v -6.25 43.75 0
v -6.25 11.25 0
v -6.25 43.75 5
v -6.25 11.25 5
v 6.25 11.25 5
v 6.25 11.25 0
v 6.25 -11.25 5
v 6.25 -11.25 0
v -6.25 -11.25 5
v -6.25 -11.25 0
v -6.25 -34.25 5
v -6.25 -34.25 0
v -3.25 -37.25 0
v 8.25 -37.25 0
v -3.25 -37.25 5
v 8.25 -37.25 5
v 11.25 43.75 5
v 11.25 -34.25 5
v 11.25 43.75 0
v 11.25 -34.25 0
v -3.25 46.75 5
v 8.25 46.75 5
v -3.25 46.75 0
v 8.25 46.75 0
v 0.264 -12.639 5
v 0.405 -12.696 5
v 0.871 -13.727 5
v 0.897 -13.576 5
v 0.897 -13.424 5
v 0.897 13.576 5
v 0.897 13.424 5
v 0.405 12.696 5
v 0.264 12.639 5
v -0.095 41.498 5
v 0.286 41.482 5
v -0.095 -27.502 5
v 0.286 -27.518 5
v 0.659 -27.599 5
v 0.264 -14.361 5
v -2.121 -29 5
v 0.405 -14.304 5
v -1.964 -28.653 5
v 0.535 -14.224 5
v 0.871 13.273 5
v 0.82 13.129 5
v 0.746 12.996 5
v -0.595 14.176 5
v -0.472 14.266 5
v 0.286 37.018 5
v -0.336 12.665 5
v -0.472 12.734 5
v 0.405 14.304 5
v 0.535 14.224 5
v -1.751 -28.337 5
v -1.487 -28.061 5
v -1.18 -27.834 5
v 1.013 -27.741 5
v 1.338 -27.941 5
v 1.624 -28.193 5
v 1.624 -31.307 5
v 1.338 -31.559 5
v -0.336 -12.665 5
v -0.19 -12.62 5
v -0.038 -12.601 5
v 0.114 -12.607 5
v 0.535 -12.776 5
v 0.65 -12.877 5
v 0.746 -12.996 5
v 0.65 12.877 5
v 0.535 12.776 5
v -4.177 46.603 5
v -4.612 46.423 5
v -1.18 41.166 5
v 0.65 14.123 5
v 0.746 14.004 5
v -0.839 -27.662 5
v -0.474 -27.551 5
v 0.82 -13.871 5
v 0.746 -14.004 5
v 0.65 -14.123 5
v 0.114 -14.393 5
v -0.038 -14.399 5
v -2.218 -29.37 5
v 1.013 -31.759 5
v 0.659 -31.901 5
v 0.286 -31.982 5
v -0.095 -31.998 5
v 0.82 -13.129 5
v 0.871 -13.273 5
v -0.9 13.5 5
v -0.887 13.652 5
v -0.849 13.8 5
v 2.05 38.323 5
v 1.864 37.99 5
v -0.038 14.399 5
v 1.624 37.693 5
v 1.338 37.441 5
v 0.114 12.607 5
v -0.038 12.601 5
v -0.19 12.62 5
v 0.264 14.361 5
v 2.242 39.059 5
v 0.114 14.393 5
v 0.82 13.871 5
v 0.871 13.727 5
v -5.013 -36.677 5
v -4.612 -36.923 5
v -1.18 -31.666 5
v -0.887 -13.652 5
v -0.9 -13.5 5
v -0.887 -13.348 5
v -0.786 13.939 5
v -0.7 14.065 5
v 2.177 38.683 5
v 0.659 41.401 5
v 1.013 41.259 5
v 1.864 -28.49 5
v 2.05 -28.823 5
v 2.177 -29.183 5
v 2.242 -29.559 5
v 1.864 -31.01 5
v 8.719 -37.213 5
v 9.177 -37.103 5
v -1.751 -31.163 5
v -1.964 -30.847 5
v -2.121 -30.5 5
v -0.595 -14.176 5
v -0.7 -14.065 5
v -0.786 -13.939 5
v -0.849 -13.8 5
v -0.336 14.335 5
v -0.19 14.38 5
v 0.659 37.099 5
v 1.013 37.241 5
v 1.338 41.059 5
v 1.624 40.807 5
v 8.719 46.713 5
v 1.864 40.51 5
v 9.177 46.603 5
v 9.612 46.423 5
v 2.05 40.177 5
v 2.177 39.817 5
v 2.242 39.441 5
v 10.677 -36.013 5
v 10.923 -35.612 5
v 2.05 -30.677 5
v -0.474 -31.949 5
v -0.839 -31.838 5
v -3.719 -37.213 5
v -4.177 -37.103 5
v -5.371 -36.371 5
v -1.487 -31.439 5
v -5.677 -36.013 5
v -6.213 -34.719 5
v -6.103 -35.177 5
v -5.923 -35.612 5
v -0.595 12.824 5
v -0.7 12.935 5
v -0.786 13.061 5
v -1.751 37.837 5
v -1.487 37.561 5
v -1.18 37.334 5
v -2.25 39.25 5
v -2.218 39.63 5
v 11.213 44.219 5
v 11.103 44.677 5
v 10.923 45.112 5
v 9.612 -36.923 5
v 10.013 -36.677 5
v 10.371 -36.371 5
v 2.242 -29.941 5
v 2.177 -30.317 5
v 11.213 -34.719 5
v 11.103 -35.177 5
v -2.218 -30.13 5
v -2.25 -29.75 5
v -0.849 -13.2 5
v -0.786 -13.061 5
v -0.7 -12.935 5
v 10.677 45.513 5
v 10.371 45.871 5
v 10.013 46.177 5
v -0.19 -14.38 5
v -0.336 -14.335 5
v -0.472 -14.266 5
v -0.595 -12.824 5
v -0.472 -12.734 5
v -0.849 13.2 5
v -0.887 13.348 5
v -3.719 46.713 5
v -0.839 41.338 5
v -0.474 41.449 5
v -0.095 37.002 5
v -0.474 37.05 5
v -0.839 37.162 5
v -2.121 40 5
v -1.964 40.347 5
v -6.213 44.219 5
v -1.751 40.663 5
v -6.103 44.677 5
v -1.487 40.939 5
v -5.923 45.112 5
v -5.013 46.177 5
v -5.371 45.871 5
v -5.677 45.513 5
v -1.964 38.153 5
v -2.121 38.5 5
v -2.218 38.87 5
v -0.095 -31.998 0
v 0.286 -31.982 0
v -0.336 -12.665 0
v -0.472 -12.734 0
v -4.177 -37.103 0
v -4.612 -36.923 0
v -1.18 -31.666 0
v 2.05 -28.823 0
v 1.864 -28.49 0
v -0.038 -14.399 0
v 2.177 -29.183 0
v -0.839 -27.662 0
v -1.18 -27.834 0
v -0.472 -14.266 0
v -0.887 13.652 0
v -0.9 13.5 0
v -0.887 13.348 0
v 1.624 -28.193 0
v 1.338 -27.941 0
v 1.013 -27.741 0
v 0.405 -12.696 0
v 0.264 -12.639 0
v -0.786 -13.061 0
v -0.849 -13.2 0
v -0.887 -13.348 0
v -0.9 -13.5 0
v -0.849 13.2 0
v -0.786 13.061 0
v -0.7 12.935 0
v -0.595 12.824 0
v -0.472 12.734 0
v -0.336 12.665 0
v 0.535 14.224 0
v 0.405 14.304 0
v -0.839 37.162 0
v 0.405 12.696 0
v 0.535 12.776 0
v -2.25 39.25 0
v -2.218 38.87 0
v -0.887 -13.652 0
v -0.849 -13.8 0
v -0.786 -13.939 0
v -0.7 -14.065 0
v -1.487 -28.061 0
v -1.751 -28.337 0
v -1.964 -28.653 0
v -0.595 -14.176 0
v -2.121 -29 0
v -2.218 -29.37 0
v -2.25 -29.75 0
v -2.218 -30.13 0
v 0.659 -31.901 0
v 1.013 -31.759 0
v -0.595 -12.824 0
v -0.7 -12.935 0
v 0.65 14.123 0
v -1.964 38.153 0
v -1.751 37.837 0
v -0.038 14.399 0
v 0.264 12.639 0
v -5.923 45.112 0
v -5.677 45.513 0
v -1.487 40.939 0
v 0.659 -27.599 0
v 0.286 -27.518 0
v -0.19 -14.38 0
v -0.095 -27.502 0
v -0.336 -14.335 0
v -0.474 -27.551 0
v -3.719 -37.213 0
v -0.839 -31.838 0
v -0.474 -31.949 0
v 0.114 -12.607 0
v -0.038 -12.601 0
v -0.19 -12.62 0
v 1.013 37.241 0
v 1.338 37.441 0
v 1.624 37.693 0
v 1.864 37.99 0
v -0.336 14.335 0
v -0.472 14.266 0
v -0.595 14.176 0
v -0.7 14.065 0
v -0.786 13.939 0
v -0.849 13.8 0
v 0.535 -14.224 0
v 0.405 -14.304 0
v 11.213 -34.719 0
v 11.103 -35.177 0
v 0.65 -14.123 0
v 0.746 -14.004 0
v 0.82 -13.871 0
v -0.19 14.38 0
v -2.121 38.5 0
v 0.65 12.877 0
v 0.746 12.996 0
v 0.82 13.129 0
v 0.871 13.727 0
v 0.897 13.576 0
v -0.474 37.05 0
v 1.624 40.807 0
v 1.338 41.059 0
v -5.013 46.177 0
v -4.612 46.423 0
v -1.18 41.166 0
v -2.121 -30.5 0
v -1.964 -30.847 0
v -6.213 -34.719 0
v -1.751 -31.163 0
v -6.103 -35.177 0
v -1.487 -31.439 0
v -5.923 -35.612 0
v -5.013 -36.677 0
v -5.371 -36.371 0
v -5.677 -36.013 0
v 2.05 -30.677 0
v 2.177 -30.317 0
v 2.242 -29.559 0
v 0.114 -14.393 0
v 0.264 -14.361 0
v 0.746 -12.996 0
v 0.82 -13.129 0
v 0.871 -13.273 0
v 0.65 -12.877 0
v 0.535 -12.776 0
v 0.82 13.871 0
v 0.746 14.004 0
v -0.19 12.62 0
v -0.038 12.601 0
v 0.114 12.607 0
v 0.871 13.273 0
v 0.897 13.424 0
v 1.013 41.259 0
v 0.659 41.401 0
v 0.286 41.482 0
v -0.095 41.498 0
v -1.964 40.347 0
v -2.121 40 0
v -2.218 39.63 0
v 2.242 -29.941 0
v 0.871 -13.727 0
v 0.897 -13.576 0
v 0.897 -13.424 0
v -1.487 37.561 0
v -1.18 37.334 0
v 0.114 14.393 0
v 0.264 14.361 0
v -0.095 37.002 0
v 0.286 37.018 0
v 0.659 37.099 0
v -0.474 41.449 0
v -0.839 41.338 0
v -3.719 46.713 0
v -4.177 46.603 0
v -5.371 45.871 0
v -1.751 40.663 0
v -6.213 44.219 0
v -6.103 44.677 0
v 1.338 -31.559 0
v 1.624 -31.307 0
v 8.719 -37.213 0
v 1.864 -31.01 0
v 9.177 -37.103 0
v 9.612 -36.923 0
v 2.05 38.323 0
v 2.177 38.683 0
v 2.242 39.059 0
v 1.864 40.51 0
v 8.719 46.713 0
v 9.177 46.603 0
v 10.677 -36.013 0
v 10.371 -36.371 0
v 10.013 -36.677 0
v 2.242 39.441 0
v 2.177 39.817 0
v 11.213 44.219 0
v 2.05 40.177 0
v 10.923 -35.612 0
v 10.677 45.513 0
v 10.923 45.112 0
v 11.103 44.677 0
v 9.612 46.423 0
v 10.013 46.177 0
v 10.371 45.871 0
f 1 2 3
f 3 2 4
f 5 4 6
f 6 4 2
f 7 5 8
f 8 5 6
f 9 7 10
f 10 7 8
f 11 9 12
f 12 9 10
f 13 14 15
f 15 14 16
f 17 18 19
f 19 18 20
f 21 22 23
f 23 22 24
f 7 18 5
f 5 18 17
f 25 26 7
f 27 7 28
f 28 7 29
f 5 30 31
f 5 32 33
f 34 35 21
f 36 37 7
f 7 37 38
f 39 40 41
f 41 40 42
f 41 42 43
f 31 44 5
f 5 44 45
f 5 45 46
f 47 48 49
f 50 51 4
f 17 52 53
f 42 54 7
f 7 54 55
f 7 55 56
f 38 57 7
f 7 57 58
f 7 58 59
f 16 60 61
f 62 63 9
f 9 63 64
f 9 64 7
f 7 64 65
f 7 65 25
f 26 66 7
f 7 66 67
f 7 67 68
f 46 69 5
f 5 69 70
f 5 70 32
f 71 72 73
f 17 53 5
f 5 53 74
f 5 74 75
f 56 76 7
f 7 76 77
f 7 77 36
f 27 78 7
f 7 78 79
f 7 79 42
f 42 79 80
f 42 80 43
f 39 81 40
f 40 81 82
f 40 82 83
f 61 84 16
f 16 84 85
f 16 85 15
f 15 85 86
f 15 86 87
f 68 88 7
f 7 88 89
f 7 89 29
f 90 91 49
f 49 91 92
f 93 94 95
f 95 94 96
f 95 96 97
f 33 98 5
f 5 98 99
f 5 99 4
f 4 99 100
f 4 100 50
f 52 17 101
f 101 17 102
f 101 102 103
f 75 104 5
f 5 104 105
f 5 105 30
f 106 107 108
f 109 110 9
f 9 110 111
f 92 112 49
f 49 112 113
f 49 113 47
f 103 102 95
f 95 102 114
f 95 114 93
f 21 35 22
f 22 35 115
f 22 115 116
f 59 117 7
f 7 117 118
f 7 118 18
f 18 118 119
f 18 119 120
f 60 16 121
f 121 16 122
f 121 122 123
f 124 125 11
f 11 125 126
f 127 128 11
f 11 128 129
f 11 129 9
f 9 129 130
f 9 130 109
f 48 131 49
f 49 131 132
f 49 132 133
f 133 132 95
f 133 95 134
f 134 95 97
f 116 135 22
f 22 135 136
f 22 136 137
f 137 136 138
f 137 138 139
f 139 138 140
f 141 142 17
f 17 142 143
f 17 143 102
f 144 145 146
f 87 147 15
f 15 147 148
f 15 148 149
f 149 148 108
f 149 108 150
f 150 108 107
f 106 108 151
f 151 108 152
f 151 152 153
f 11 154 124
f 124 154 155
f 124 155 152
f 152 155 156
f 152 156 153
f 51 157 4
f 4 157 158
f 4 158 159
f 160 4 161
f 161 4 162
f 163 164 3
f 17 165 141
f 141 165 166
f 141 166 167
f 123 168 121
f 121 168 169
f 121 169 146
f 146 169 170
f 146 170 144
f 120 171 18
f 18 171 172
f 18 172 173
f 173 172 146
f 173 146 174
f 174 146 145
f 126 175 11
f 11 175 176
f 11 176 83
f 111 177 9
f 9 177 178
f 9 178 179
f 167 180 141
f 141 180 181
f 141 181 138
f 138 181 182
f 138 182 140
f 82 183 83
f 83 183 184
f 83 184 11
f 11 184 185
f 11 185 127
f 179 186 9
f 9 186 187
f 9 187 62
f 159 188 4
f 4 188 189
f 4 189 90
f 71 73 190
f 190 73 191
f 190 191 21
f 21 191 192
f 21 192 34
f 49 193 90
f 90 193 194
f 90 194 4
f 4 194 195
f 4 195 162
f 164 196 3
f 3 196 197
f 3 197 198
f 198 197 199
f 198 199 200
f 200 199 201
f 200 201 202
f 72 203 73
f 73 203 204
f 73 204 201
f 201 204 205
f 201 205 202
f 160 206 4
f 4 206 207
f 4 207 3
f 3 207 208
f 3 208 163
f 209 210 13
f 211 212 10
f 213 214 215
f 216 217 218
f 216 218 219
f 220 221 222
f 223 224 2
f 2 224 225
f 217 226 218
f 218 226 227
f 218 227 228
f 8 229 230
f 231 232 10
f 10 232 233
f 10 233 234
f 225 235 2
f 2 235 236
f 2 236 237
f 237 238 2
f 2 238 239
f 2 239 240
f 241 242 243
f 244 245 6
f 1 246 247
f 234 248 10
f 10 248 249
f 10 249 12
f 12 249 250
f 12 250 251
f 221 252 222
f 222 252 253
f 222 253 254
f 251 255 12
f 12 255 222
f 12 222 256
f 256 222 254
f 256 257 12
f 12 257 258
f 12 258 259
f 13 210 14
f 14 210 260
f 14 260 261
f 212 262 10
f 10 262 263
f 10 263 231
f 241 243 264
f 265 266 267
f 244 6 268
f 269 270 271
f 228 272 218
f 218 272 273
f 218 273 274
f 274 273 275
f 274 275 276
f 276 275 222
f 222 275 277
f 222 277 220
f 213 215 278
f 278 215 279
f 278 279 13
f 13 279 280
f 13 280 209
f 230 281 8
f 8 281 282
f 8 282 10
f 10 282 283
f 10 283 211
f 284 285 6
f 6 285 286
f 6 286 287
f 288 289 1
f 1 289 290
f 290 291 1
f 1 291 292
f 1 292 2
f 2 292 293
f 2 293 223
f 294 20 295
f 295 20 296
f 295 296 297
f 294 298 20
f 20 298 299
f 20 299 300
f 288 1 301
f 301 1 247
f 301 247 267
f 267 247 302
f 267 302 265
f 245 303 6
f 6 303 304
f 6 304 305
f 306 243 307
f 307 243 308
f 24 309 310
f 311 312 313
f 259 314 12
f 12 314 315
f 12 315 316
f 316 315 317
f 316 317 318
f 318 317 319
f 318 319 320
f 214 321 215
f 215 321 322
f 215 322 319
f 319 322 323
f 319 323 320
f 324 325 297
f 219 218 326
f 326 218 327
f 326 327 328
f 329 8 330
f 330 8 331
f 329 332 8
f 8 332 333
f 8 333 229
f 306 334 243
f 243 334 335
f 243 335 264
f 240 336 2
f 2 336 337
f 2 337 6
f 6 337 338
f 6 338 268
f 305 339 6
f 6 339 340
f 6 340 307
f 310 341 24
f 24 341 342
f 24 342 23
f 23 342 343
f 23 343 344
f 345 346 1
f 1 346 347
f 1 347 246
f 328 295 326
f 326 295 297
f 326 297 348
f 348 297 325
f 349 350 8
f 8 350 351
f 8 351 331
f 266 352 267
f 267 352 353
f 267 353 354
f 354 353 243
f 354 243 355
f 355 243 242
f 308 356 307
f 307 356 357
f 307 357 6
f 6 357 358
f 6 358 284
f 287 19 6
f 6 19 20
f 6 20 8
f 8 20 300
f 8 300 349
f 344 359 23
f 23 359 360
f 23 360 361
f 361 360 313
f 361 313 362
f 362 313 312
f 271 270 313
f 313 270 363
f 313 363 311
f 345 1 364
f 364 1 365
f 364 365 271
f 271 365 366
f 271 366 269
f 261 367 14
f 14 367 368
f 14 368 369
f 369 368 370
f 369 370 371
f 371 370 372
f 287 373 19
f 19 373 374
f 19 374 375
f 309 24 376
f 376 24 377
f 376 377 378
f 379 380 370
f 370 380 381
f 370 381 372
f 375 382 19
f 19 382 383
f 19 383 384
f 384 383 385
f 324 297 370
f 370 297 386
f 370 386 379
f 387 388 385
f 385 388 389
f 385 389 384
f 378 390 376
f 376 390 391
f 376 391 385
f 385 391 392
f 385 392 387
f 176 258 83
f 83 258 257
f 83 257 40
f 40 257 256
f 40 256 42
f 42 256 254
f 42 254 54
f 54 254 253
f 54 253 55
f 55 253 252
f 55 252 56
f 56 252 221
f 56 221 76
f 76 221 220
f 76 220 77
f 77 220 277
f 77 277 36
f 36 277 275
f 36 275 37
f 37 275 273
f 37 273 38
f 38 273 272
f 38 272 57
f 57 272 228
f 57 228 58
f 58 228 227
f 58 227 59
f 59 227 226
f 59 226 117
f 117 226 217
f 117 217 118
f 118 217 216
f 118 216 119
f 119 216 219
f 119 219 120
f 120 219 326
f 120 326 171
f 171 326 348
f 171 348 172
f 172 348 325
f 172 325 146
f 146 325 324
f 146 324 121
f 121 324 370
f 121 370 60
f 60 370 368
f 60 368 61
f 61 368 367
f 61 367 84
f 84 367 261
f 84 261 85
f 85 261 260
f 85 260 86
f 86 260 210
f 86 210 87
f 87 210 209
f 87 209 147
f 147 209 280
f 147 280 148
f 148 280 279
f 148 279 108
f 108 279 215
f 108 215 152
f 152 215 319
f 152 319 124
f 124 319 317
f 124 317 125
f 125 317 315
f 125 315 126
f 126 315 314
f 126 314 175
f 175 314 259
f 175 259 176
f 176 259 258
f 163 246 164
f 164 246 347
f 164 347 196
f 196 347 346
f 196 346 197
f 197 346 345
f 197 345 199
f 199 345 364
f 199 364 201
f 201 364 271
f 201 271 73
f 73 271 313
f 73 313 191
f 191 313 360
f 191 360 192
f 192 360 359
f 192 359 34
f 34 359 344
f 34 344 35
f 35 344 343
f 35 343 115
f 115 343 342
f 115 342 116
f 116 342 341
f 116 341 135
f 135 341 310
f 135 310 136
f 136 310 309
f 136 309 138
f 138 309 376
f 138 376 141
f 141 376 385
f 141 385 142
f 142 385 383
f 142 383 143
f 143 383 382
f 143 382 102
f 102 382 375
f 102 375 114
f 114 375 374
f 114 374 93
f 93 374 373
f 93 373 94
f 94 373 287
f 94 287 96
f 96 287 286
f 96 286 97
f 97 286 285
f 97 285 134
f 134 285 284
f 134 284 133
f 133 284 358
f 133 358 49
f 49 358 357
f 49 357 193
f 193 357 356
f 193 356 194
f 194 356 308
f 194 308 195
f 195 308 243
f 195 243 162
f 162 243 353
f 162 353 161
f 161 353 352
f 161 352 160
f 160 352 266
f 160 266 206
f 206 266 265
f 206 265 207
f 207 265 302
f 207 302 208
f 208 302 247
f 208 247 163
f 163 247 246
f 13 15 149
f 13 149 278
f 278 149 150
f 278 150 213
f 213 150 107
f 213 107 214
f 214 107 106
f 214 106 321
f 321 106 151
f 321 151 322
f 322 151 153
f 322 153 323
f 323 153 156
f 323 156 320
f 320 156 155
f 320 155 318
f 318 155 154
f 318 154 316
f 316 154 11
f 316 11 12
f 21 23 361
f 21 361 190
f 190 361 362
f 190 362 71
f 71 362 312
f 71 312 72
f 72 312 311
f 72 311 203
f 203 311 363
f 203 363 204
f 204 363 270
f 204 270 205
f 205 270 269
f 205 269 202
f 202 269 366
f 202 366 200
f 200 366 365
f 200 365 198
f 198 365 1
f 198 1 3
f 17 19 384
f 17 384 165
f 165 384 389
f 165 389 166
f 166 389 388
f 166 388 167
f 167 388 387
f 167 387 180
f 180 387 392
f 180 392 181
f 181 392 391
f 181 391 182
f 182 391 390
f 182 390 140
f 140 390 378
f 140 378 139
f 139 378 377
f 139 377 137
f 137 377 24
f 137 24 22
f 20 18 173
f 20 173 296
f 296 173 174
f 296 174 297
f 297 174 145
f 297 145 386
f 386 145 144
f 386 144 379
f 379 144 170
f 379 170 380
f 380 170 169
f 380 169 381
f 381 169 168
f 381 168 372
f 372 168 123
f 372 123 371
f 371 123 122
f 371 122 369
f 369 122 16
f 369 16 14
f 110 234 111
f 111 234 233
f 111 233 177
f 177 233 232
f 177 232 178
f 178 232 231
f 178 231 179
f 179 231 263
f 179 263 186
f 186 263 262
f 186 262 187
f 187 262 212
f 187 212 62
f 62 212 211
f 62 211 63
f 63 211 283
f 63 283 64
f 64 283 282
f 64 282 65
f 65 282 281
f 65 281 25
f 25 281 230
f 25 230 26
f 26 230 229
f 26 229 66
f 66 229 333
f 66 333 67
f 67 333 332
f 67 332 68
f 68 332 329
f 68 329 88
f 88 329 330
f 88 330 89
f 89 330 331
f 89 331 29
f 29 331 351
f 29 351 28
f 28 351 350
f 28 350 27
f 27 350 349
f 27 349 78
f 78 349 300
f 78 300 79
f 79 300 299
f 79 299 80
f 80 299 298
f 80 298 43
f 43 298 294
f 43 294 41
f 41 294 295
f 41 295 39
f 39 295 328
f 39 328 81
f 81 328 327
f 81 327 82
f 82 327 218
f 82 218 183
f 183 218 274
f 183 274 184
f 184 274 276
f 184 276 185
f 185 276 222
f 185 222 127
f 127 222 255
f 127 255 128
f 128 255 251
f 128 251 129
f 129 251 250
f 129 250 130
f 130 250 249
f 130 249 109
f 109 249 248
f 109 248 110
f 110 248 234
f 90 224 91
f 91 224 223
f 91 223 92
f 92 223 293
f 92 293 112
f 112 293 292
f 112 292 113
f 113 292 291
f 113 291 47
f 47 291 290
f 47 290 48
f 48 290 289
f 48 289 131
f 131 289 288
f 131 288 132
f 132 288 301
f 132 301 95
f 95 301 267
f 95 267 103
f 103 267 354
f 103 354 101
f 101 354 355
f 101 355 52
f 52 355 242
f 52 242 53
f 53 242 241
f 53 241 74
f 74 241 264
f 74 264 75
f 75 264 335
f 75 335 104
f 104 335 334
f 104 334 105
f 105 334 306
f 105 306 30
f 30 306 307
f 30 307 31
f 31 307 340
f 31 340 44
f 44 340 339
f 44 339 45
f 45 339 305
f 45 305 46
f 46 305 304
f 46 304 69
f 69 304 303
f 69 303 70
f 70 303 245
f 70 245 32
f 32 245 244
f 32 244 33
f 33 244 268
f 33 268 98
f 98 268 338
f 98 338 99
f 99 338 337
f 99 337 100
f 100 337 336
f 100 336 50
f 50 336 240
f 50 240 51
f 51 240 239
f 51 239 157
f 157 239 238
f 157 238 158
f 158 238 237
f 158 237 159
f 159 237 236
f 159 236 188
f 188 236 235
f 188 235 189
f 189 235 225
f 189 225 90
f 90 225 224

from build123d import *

# Parameters (mm, degrees)
BOSS_EXTRUDE1_DEPTH    = 5
M4_CLEARANCE_HOLE1_D   = 4.5
FILLET1_R              = 3
M1_6_CLEARANCE_HOLE1_D = 1.8


with BuildPart() as part:
    # Sketch2 → Boss-Extrude1 (new body)
    with BuildSketch(Plane.XY):
        Polygon((11.25, 46.75), (-6.25, 46.75), (-6.25, 11.25), (6.25, 11.25), (6.25, -11.25), (-6.25, -11.25), (-6.25, -37.25), (11.25, -37.25), align=None)
    extrude(amount=BOSS_EXTRUDE1_DEPTH)

    # M4 Clearance Hole1 (through all)
    with Locations(Plane(origin=(0, 0, 0), x_dir=(1, 0, 0), z_dir=(0, 0, -1))):
        with Locations((0, -39.25), (0, 29.75)):
            Hole(M4_CLEARANCE_HOLE1_D / 2)

    # Fillet1
    fillet1_edges = [part.edges().sort_by_distance(p)[0] for p in [
        (-6.25, 46.75, 2.5),
        (11.25, 46.75, 2.5),
        (11.25, -37.25, 2.5),
        (-6.25, -37.25, 2.5),
    ]]
    fillet(fillet1_edges, radius=FILLET1_R)

    # M1.6 Clearance Hole1 (through all)
    with Locations(Plane(origin=(0, 0, 0), x_dir=(1, 0, 0), z_dir=(0, 0, -1))):
        with Locations((0, -13.5), (0, 13.5)):
            Hole(M1_6_CLEARANCE_HOLE1_D / 2)


solid = part.part
